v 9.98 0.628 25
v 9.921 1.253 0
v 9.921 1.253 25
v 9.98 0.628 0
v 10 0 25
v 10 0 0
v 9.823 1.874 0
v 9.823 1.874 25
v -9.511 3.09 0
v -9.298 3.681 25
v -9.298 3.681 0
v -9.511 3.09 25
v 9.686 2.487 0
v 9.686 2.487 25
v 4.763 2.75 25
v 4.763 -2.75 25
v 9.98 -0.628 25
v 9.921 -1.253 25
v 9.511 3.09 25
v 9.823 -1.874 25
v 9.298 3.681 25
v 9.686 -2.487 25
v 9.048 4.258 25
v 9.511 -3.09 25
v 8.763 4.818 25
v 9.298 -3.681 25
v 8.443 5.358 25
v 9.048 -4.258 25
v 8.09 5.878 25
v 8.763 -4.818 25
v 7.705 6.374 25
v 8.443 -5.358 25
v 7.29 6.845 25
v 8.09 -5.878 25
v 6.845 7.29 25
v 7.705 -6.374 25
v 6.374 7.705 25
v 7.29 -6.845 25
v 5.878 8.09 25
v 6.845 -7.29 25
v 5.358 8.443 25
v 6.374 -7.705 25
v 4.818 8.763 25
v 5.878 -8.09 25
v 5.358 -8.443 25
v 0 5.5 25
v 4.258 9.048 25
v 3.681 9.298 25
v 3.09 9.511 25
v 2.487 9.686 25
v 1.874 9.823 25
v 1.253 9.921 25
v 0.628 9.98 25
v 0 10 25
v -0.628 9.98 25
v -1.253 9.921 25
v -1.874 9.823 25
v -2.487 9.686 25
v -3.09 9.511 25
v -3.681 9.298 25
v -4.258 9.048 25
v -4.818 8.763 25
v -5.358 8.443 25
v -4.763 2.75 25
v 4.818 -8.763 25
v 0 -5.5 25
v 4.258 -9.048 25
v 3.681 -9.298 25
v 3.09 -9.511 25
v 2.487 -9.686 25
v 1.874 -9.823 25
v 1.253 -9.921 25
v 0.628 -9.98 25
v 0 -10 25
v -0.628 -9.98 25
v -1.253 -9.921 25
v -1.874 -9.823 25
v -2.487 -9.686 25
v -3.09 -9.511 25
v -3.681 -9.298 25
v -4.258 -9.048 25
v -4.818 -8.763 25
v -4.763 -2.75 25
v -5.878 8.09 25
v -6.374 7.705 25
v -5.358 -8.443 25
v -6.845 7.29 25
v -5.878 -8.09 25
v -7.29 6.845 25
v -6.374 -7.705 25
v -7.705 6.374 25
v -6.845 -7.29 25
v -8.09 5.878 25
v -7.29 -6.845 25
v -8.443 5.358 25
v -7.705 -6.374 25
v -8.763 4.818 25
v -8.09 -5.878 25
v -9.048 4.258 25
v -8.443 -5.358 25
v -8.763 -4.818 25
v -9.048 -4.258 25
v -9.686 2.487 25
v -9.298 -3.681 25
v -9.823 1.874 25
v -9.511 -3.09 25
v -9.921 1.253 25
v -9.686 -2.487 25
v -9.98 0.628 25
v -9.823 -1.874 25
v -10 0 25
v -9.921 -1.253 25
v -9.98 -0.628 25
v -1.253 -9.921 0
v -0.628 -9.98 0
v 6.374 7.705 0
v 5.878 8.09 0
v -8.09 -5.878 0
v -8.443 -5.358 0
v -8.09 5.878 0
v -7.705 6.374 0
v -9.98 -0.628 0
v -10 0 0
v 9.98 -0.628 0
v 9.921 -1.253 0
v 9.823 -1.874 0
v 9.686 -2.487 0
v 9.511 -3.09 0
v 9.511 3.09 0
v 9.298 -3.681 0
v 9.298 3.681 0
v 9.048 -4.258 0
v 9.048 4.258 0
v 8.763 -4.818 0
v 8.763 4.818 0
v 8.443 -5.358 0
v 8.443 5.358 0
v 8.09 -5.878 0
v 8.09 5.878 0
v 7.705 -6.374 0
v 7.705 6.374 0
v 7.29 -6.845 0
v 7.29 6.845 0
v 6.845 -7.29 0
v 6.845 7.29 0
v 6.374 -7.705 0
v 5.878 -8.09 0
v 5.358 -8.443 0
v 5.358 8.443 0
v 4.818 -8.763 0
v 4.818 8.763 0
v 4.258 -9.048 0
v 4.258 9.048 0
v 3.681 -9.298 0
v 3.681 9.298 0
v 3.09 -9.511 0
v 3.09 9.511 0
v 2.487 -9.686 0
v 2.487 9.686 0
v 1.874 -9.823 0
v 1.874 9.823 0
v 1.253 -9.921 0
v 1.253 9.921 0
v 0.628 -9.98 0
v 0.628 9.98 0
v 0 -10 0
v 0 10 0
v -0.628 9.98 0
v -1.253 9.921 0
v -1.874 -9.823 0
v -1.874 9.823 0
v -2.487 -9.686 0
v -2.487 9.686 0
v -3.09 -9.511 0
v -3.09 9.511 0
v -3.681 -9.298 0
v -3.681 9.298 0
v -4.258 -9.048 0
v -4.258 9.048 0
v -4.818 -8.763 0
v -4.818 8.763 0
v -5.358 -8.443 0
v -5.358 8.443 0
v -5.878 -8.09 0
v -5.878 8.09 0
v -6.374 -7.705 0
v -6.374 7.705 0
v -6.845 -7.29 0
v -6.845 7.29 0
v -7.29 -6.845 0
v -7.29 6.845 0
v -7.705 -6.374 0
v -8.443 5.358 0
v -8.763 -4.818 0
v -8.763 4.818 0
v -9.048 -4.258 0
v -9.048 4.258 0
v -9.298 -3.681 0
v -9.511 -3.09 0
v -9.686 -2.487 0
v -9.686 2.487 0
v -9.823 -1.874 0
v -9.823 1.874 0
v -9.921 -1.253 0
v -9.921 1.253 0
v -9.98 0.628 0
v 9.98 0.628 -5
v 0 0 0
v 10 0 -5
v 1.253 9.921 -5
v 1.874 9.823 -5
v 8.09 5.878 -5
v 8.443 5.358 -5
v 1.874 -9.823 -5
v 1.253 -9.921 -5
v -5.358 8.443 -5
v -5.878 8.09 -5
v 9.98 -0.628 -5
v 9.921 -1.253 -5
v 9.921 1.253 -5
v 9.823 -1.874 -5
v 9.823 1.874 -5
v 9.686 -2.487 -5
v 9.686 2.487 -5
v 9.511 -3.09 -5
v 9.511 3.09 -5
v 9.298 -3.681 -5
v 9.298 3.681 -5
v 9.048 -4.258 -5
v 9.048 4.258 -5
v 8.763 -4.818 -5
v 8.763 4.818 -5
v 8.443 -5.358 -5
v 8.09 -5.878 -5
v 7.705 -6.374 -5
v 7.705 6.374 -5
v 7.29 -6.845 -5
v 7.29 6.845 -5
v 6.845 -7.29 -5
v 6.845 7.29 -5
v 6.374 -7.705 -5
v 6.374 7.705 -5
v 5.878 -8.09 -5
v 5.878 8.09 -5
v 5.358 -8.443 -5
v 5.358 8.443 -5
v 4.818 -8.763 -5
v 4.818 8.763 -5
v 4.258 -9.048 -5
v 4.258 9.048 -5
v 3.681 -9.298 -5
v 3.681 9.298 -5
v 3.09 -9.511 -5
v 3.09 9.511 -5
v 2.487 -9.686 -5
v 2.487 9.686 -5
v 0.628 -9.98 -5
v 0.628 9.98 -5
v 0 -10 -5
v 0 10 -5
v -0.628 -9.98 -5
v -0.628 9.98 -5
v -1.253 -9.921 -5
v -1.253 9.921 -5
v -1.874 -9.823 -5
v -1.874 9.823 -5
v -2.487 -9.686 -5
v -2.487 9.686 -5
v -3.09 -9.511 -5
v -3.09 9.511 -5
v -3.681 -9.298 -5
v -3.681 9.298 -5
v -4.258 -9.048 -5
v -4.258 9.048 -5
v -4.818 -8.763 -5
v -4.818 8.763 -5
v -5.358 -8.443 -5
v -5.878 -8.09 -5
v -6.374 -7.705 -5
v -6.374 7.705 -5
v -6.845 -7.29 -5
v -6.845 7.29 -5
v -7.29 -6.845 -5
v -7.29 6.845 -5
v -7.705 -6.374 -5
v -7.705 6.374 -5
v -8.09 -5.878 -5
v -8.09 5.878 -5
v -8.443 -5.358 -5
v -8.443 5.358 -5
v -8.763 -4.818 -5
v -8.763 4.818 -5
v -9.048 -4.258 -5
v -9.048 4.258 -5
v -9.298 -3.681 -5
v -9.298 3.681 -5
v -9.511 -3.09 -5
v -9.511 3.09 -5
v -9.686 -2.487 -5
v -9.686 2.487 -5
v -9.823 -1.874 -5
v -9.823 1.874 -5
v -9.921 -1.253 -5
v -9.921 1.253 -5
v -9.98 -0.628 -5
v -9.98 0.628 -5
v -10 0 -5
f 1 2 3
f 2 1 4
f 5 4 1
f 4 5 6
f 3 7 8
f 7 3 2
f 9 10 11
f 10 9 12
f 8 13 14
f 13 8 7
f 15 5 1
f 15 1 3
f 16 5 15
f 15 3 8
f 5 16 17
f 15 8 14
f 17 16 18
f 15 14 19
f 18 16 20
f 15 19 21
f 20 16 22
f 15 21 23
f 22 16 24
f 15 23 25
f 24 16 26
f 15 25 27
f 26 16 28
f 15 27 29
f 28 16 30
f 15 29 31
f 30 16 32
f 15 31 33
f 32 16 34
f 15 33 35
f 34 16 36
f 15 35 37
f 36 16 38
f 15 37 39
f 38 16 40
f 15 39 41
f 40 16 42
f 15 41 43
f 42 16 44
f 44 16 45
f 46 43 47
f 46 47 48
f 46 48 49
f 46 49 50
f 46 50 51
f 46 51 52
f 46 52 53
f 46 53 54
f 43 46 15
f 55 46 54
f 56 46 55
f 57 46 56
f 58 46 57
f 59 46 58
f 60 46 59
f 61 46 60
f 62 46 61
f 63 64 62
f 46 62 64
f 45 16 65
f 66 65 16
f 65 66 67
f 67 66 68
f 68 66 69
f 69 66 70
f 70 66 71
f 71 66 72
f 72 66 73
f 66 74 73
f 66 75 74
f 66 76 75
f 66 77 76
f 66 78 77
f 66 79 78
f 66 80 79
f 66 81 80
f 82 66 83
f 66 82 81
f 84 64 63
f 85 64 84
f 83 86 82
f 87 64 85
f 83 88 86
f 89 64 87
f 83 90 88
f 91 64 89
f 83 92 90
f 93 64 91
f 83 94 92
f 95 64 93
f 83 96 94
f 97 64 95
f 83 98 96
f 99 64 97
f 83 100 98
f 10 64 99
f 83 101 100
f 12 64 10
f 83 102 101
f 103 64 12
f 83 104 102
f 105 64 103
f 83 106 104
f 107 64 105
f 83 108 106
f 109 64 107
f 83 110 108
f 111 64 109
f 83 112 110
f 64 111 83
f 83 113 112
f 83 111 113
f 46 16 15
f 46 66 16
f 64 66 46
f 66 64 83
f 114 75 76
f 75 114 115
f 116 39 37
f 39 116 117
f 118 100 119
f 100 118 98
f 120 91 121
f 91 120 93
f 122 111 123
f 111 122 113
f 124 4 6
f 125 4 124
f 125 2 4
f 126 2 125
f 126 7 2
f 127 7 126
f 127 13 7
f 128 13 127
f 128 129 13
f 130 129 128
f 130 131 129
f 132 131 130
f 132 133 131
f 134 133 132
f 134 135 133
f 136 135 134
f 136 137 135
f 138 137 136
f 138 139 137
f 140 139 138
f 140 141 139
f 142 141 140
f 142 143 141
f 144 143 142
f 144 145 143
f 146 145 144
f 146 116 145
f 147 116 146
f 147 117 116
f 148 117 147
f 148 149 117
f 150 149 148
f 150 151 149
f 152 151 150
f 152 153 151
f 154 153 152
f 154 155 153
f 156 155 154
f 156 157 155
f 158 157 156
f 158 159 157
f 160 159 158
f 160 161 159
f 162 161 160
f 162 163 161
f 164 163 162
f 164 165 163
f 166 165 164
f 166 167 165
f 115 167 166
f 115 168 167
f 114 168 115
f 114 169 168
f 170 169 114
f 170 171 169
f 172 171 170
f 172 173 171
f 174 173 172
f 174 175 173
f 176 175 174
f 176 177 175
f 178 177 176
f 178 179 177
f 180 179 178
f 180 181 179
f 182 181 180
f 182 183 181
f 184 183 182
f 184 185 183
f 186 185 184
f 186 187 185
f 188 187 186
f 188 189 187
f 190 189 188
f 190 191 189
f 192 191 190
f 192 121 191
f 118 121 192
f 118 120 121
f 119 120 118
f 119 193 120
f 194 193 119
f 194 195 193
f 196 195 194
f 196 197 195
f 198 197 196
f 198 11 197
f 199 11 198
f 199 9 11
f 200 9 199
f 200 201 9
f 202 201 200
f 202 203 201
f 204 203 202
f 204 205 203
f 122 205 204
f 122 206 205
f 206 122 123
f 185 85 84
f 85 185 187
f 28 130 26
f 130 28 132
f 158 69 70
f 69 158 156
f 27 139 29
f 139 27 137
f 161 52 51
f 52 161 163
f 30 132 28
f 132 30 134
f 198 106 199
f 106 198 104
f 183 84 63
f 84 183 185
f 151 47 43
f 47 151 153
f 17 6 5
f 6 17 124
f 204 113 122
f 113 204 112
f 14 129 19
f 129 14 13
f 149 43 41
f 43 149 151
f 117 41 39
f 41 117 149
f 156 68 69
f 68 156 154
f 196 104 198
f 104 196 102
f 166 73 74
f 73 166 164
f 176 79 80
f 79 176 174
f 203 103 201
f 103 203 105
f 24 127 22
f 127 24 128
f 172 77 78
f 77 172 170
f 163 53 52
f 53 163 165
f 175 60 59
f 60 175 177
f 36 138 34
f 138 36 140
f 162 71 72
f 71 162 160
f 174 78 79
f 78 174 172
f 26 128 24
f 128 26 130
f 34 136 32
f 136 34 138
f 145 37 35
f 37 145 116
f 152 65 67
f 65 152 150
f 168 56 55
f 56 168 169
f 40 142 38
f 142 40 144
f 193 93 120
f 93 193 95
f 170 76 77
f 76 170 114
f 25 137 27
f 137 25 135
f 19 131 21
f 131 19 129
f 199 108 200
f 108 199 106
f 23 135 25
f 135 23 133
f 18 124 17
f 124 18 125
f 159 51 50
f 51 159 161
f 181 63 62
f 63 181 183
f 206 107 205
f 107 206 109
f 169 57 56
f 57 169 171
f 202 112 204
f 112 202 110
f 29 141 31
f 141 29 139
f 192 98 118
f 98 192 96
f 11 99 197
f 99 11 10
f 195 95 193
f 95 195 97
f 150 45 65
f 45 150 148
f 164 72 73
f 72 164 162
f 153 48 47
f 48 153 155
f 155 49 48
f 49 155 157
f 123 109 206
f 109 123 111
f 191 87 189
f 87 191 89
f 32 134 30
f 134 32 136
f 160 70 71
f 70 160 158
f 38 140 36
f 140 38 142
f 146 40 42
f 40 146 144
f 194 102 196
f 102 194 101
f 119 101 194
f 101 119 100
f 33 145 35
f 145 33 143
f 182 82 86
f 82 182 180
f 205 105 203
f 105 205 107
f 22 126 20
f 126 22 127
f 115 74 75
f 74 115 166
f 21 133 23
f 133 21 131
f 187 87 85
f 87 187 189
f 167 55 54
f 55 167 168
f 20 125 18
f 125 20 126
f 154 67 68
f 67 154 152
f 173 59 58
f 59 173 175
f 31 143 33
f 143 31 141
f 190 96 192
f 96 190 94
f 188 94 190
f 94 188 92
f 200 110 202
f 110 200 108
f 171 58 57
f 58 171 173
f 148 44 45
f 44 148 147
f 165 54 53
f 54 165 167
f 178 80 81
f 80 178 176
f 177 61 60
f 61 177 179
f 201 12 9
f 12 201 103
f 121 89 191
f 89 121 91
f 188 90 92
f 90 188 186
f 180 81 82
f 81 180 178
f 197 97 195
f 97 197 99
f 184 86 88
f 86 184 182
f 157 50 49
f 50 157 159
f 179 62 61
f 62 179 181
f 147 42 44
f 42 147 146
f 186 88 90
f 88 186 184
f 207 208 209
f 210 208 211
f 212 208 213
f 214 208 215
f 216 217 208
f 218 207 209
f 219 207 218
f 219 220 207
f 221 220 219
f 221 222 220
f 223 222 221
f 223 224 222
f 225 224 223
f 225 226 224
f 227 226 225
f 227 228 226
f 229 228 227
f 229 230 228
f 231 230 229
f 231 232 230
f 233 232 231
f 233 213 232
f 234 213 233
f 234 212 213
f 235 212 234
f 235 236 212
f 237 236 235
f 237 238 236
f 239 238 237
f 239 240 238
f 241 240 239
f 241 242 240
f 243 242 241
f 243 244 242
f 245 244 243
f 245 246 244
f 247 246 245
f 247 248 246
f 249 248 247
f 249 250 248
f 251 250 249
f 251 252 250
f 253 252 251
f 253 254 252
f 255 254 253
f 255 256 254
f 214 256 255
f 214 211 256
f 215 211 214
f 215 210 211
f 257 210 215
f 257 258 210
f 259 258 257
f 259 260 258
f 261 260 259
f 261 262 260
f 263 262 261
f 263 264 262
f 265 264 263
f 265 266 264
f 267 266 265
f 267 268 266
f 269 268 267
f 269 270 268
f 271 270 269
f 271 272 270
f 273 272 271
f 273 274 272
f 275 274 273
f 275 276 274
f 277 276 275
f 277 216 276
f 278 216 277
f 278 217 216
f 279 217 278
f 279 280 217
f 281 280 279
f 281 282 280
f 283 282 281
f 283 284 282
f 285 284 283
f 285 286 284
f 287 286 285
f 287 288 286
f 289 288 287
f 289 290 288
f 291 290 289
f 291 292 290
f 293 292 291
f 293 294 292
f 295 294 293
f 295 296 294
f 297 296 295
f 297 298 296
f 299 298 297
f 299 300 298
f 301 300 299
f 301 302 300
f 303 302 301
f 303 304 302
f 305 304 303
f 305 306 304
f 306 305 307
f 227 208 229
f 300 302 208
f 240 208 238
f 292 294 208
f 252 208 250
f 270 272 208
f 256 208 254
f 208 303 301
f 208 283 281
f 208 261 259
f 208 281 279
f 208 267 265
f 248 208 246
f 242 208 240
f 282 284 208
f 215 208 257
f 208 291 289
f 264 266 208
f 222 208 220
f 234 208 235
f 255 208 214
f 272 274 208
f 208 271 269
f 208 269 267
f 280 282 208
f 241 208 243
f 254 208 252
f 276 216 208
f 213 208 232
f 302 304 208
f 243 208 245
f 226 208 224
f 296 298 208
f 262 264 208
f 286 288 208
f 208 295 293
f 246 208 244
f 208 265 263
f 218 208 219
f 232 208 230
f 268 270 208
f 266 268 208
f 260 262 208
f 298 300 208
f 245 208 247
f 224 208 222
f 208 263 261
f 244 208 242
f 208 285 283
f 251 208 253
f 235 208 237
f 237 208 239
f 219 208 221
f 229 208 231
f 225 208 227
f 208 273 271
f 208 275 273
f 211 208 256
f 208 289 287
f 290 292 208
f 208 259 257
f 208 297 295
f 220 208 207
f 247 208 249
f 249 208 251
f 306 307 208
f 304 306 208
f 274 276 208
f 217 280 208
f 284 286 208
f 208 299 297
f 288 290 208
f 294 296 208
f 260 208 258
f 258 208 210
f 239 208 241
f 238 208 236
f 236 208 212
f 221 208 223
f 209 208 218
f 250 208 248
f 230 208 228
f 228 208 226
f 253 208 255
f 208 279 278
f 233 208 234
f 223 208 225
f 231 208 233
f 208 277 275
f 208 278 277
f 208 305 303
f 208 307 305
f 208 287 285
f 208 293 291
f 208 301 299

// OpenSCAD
// Parameters
cylinder_height = 30;
cylinder_radius = 10;
hex_radius = 5.5; // Distance from center to flat of hex
hex_depth = 5;
chamfer_height = 5;

// Main cylindrical body
module main_body() {
    cylinder(h = cylinder_height - chamfer_height, r = cylinder_radius, $fn = 100);
}

// Chamfered bottom
module chamfered_bottom() {
    translate([0, 0, -(chamfer_height)])
        cylinder(h = chamfer_height, r1 = cylinder_radius, r2 = 0, $fn = 100);
}

// Hex socket
module hex_socket() {
    translate([0, 0, cylinder_height - hex_depth])
        rotate([0, 0, 30]) // Align flat edge to front
            linear_extrude(height = hex_depth)
                polygon(points = [
                    [hex_radius*cos(0), hex_radius*sin(0)],
                    [hex_radius*cos(60), hex_radius*sin(60)],
                    [hex_radius*cos(120), hex_radius*sin(120)],
                    [hex_radius*cos(180), hex_radius*sin(180)],
                    [hex_radius*cos(240), hex_radius*sin(240)],
                    [hex_radius*cos(300), hex_radius*sin(300)]
                ]);
}

// Final model
difference() {
    union() {
        main_body();
        chamfered_bottom();
    }
    hex_socket();
}
